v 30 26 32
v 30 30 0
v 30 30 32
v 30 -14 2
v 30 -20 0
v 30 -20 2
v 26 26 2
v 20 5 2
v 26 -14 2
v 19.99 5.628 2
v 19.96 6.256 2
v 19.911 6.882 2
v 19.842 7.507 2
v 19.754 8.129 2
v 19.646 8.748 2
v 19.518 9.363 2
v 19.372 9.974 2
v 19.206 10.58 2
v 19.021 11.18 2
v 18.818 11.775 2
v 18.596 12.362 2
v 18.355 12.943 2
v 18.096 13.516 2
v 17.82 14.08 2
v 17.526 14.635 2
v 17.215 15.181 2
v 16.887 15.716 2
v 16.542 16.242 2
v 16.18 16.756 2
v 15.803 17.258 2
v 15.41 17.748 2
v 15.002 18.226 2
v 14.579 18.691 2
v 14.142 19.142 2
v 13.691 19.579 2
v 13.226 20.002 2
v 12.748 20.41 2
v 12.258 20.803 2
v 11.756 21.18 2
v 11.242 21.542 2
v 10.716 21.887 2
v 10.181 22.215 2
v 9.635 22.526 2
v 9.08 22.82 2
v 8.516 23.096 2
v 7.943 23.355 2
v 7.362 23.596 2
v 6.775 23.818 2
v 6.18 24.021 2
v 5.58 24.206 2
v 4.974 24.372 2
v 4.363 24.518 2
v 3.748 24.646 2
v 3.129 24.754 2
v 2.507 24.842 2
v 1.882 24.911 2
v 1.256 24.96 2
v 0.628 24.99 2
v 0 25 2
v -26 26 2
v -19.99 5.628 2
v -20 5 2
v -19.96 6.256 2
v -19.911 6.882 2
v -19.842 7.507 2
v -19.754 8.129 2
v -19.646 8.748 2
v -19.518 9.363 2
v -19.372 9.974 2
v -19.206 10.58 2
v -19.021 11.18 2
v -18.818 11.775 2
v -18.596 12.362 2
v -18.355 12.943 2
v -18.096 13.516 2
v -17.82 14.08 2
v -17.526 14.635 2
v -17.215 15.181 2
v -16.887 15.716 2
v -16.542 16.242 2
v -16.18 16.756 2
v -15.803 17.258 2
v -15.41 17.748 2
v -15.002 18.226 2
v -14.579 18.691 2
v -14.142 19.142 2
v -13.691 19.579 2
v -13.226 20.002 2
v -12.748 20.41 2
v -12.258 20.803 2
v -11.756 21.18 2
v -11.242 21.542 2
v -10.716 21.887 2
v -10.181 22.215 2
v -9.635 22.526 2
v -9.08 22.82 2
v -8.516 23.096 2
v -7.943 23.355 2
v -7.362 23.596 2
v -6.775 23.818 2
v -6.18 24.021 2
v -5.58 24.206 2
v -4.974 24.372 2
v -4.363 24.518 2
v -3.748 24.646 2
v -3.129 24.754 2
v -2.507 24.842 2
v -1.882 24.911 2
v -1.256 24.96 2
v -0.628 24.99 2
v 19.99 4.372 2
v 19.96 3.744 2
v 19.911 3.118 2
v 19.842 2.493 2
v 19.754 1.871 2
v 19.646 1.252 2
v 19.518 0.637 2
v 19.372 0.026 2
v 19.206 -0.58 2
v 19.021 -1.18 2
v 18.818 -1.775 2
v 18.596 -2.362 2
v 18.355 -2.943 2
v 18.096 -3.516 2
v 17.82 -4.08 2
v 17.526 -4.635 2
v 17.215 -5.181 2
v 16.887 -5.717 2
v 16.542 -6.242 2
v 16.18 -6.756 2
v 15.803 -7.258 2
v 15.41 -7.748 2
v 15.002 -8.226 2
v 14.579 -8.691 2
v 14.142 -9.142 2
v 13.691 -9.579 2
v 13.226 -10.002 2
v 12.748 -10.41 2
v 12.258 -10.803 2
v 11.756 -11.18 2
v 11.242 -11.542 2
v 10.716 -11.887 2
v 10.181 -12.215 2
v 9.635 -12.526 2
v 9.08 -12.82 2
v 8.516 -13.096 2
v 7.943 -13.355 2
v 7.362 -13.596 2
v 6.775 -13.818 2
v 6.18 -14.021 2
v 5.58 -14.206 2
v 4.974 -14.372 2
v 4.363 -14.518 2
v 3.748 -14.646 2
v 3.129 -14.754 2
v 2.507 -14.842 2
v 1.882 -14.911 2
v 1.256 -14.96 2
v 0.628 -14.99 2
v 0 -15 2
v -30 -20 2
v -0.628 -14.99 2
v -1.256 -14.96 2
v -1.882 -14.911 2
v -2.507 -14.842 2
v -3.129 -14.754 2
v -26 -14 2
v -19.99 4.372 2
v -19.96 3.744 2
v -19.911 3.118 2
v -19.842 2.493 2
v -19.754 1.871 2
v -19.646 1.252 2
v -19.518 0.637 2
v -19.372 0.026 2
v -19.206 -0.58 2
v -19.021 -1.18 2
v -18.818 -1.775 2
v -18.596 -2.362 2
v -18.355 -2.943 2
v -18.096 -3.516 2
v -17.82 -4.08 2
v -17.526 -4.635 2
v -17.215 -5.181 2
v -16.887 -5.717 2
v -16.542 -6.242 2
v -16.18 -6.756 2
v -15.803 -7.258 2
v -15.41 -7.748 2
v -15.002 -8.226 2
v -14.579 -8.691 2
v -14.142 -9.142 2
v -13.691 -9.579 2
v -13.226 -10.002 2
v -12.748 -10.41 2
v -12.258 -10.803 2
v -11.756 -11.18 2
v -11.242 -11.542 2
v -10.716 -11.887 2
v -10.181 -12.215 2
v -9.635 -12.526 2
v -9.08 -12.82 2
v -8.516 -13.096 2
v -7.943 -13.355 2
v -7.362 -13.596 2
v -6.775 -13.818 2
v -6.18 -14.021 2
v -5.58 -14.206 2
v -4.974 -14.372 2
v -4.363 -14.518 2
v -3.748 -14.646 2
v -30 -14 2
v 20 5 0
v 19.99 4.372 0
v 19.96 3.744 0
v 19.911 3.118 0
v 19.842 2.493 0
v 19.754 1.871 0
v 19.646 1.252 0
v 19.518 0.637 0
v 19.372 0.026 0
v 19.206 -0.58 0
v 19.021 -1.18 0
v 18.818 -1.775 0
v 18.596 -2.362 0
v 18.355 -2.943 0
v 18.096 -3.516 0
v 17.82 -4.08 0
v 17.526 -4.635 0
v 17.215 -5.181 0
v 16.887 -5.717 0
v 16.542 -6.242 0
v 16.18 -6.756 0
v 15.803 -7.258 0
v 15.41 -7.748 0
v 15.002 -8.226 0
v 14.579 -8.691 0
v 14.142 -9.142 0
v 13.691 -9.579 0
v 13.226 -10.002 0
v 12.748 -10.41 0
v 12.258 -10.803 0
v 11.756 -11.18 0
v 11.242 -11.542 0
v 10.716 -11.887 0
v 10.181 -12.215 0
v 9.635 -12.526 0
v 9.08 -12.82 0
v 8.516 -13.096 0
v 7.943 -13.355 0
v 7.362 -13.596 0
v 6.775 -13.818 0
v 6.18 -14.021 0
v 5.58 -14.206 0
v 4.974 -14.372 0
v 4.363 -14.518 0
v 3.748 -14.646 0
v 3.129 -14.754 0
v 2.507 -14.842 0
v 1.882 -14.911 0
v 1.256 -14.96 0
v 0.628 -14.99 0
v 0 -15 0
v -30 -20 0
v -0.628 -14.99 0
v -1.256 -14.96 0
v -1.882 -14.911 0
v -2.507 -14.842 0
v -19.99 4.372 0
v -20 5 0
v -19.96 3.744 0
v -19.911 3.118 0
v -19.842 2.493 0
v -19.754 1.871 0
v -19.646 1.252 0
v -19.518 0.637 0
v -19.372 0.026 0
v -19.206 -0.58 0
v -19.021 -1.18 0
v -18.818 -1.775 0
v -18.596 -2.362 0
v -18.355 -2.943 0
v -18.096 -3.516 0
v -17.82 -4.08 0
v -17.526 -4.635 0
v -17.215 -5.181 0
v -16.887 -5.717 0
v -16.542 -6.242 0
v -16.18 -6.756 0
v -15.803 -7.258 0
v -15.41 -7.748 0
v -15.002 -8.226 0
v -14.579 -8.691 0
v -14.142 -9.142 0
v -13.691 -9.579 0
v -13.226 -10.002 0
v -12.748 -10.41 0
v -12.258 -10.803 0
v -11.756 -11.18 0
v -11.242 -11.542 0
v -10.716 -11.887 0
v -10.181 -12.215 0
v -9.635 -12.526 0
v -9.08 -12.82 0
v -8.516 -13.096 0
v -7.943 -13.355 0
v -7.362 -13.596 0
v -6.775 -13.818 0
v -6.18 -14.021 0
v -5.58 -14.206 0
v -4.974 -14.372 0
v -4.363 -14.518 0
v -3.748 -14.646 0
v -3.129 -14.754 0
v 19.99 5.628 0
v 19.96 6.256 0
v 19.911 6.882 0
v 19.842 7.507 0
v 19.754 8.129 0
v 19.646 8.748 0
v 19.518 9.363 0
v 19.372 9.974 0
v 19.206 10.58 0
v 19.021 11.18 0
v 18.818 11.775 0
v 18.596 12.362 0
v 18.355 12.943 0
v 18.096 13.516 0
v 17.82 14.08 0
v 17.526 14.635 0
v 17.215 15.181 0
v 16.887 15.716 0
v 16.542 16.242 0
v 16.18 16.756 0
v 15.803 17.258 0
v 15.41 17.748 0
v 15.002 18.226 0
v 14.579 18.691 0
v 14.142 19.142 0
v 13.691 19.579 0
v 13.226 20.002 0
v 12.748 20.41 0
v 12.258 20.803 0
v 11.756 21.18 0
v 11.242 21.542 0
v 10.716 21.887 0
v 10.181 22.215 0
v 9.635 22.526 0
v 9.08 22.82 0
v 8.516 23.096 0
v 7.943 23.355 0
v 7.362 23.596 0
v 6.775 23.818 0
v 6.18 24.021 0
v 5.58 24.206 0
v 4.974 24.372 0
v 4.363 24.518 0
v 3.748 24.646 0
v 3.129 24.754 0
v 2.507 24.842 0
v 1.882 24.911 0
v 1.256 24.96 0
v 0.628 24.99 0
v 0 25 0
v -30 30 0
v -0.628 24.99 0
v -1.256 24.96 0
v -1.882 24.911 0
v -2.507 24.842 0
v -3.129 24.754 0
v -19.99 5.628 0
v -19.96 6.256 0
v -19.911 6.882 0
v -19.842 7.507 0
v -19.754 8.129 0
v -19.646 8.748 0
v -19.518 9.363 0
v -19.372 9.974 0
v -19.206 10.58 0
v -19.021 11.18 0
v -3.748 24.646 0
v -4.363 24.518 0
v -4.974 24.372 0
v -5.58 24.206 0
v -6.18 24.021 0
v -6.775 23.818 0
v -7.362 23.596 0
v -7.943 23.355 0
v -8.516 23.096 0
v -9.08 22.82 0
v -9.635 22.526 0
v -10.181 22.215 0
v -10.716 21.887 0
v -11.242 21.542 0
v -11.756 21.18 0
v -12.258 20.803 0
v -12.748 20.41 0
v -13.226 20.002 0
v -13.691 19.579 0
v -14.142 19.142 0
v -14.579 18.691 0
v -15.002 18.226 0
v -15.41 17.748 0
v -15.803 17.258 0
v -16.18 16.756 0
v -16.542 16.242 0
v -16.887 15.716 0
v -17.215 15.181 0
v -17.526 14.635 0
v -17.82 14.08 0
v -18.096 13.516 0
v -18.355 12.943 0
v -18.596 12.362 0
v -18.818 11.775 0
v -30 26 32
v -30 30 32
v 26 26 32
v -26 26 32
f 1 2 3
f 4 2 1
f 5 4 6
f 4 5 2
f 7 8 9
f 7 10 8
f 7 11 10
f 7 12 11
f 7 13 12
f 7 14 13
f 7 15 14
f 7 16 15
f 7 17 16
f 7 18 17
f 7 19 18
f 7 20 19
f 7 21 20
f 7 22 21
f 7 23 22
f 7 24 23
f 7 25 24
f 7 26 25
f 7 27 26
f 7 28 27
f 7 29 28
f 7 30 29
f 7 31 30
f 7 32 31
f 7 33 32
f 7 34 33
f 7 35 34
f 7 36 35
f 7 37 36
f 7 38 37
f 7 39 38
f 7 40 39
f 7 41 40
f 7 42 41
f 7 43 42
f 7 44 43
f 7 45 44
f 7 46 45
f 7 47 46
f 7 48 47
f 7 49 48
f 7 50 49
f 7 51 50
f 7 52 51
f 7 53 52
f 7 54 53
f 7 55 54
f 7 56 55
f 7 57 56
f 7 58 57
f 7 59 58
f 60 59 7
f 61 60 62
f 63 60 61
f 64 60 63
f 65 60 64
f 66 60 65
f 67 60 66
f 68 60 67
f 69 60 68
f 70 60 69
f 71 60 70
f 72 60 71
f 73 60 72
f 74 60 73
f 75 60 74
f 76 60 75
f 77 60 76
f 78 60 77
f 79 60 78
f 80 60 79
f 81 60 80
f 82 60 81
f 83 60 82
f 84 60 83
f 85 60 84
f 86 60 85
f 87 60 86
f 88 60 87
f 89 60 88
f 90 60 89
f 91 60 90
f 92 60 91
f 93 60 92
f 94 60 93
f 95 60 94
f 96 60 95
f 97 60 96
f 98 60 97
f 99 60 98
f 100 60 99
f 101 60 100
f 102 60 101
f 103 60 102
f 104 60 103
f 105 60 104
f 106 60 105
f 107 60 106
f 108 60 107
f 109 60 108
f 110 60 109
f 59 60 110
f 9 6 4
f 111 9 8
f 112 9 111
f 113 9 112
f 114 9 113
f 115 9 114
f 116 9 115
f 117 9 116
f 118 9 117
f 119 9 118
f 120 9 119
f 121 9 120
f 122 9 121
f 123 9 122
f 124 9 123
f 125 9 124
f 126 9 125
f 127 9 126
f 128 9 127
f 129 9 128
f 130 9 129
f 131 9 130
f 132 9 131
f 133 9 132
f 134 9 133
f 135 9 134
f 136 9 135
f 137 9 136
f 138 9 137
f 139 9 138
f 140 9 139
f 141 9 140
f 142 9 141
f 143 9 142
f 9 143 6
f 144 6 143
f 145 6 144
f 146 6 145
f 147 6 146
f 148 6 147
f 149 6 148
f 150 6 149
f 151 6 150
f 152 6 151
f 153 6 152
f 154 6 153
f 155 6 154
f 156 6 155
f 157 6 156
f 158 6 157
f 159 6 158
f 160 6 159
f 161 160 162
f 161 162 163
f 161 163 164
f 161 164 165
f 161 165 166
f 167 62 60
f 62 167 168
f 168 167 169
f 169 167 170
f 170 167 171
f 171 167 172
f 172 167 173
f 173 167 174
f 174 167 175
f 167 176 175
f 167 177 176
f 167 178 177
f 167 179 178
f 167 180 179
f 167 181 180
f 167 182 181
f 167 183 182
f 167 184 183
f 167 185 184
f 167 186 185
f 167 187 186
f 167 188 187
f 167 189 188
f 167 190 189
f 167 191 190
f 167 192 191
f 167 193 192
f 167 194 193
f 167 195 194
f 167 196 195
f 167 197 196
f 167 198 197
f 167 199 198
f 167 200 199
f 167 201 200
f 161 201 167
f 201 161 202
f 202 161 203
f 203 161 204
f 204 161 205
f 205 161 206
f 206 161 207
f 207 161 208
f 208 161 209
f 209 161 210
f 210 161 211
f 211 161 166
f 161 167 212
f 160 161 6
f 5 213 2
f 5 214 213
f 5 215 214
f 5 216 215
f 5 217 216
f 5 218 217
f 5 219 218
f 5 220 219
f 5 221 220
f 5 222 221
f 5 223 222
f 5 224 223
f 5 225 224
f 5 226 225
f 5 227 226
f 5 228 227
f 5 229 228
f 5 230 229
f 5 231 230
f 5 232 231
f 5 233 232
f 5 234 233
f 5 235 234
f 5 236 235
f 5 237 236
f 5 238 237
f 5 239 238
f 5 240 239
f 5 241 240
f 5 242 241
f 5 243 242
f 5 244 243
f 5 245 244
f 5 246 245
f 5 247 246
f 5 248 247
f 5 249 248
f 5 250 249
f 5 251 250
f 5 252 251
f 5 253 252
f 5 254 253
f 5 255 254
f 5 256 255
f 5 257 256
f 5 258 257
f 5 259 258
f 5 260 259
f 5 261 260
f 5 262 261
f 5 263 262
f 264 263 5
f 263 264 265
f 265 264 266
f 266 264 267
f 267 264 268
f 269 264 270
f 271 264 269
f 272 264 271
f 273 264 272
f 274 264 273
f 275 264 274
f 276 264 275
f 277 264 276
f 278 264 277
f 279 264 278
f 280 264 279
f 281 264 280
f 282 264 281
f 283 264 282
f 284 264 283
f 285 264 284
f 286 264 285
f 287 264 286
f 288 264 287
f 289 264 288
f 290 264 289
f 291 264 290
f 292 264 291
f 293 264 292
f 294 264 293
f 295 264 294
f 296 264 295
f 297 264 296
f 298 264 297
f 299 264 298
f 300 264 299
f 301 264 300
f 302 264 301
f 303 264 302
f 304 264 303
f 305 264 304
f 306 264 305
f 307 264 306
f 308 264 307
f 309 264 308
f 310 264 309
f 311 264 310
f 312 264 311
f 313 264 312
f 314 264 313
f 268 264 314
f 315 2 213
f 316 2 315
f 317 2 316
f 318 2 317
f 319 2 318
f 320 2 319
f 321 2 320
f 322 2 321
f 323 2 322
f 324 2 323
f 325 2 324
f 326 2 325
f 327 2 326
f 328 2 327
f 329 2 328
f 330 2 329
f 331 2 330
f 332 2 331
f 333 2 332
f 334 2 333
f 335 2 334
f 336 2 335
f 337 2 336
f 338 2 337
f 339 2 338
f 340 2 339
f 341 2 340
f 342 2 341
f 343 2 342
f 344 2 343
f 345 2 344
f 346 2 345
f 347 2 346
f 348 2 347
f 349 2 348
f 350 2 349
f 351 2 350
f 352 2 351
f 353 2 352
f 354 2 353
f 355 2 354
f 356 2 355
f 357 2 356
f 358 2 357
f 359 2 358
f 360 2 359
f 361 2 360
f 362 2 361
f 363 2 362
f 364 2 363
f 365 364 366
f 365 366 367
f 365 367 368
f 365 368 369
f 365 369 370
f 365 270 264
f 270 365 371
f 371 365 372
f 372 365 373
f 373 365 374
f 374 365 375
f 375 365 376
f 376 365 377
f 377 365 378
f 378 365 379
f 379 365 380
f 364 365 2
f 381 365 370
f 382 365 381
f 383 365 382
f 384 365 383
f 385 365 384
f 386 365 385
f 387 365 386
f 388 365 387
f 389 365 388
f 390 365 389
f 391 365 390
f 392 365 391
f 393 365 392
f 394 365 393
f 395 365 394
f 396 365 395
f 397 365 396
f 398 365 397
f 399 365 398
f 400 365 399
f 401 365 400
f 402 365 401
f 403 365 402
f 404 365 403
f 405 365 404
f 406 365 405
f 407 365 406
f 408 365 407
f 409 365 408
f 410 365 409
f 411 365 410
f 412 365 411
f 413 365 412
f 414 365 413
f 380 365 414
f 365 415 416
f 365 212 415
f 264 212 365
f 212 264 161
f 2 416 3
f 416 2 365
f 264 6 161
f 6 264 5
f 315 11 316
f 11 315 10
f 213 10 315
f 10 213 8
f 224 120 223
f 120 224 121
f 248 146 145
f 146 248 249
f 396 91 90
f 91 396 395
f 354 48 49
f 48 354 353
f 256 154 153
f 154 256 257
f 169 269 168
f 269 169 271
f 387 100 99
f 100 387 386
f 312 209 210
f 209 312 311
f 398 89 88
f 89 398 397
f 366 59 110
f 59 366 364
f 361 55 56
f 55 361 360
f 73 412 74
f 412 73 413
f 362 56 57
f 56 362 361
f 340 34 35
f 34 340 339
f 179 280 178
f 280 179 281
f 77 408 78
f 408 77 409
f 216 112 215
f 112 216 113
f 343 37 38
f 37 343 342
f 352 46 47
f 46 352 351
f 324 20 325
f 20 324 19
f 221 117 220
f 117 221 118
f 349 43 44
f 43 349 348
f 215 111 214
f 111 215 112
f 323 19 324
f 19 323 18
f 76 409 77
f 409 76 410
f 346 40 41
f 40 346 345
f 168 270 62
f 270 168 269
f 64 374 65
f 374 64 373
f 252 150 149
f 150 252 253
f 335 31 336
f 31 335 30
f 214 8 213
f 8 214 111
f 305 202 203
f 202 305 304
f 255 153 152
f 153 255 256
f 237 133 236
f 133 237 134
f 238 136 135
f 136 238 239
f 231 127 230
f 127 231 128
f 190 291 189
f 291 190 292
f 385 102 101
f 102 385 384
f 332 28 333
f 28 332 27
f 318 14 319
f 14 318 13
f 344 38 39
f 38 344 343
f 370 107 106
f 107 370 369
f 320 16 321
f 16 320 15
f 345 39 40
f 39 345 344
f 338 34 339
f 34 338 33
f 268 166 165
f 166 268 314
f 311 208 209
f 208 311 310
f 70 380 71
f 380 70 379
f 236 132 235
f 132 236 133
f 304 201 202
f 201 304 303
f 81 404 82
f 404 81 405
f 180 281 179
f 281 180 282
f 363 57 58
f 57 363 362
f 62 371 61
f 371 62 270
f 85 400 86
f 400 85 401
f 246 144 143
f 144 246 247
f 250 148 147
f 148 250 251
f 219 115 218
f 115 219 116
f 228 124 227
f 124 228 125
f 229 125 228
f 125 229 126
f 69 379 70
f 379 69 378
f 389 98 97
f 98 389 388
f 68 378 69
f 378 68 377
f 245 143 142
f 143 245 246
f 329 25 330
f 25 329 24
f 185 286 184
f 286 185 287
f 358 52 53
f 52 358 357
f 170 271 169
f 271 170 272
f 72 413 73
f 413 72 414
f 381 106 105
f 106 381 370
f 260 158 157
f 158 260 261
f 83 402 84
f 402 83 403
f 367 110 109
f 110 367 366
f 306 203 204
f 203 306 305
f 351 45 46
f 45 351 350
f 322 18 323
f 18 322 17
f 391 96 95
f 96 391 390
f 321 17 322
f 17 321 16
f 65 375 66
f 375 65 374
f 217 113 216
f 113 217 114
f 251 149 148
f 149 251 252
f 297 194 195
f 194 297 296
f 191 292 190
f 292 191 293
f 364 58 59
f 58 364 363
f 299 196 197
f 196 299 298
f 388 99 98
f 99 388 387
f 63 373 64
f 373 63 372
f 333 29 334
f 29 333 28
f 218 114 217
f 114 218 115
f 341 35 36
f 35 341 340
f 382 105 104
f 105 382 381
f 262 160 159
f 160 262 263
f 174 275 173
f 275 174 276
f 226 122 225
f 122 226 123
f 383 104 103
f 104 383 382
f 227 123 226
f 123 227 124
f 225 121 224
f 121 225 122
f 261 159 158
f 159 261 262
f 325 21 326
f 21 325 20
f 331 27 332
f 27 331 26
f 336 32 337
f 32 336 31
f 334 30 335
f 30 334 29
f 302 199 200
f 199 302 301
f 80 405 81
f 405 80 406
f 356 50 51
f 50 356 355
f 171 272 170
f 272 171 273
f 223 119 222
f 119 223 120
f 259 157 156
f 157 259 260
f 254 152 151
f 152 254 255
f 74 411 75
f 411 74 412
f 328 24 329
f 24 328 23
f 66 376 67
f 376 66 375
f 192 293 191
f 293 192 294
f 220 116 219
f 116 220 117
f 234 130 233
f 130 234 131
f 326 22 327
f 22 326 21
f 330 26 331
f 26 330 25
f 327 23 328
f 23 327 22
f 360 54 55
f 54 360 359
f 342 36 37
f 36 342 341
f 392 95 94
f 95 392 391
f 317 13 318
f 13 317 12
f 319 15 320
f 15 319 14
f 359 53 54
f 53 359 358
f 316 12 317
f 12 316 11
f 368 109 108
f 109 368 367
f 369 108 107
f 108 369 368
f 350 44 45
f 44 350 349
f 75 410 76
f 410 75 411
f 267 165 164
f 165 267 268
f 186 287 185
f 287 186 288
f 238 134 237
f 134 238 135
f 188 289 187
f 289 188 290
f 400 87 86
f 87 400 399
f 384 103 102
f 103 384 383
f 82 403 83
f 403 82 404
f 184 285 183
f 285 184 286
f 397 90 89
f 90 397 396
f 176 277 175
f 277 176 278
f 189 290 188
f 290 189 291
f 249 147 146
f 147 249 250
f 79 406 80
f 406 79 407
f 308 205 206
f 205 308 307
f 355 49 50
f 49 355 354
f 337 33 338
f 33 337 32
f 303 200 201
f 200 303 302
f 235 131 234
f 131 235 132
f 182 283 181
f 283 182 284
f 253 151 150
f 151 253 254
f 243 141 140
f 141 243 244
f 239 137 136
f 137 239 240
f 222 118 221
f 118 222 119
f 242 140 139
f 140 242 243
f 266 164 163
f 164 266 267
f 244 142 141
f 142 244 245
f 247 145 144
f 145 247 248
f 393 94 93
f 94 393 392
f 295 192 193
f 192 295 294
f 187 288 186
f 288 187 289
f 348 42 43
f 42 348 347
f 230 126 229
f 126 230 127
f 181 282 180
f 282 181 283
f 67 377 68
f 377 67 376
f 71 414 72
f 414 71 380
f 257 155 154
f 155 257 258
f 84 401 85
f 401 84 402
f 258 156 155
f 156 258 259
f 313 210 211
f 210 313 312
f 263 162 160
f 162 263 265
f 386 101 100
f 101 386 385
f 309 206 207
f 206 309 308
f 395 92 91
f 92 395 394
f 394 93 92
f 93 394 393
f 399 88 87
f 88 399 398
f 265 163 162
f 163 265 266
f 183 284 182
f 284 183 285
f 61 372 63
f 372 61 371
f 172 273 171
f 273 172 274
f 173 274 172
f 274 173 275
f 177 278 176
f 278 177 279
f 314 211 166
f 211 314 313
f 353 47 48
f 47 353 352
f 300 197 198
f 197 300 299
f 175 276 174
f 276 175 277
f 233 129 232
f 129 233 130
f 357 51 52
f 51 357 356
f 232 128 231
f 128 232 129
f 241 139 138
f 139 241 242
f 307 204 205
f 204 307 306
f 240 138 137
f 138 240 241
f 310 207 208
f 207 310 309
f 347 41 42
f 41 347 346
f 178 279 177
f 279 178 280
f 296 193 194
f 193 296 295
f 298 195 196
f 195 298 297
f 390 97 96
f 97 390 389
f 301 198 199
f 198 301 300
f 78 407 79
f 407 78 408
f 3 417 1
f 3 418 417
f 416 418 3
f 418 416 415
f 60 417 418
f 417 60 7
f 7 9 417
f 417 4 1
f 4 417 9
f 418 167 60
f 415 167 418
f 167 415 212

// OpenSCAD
// Solar Shade for the PIR sensor
// We want to protect the PIR sensor from 10am to 2pm - Local solar time
// At 10am the sun should be 30 degrees from vertical
// So, our solar shade should be atan(30/40) or 37 degrees - good enough

// This is the extra beefy version with thicker tops and side - for tennis court use


difference() {
    translate([-30,-20,0]) cube([60,50,2]);                                     // This is the backplane of the sun visor
    color ("Black") translate([0,5,0]) cylinder(h=2,r=20, $fn=200);             // This is the hole in the center
};


module prism(l, w, h){                                                          // This section describes the connections between the prisms
       polyhedron(
               points=[[0,0,0], [l,0,0], [l,w,0], [0,w,0], [0,w,h], [l,w,h]],
               faces=[[0,1,2,3],[5,4,3,2],[0,4,5,1],[0,3,4],[5,2,1]]
               );
       }
 color("Blue") translate([-30,26,2]) cube([60,4,30]);                         // This top the top of the visor

 color("Red") translate([26,-14,2]) prism(4, 40, 30);                         // Right side

 color ("Green") translate([-30,-14,2]) prism(4, 40, 30);                     // Left Side
